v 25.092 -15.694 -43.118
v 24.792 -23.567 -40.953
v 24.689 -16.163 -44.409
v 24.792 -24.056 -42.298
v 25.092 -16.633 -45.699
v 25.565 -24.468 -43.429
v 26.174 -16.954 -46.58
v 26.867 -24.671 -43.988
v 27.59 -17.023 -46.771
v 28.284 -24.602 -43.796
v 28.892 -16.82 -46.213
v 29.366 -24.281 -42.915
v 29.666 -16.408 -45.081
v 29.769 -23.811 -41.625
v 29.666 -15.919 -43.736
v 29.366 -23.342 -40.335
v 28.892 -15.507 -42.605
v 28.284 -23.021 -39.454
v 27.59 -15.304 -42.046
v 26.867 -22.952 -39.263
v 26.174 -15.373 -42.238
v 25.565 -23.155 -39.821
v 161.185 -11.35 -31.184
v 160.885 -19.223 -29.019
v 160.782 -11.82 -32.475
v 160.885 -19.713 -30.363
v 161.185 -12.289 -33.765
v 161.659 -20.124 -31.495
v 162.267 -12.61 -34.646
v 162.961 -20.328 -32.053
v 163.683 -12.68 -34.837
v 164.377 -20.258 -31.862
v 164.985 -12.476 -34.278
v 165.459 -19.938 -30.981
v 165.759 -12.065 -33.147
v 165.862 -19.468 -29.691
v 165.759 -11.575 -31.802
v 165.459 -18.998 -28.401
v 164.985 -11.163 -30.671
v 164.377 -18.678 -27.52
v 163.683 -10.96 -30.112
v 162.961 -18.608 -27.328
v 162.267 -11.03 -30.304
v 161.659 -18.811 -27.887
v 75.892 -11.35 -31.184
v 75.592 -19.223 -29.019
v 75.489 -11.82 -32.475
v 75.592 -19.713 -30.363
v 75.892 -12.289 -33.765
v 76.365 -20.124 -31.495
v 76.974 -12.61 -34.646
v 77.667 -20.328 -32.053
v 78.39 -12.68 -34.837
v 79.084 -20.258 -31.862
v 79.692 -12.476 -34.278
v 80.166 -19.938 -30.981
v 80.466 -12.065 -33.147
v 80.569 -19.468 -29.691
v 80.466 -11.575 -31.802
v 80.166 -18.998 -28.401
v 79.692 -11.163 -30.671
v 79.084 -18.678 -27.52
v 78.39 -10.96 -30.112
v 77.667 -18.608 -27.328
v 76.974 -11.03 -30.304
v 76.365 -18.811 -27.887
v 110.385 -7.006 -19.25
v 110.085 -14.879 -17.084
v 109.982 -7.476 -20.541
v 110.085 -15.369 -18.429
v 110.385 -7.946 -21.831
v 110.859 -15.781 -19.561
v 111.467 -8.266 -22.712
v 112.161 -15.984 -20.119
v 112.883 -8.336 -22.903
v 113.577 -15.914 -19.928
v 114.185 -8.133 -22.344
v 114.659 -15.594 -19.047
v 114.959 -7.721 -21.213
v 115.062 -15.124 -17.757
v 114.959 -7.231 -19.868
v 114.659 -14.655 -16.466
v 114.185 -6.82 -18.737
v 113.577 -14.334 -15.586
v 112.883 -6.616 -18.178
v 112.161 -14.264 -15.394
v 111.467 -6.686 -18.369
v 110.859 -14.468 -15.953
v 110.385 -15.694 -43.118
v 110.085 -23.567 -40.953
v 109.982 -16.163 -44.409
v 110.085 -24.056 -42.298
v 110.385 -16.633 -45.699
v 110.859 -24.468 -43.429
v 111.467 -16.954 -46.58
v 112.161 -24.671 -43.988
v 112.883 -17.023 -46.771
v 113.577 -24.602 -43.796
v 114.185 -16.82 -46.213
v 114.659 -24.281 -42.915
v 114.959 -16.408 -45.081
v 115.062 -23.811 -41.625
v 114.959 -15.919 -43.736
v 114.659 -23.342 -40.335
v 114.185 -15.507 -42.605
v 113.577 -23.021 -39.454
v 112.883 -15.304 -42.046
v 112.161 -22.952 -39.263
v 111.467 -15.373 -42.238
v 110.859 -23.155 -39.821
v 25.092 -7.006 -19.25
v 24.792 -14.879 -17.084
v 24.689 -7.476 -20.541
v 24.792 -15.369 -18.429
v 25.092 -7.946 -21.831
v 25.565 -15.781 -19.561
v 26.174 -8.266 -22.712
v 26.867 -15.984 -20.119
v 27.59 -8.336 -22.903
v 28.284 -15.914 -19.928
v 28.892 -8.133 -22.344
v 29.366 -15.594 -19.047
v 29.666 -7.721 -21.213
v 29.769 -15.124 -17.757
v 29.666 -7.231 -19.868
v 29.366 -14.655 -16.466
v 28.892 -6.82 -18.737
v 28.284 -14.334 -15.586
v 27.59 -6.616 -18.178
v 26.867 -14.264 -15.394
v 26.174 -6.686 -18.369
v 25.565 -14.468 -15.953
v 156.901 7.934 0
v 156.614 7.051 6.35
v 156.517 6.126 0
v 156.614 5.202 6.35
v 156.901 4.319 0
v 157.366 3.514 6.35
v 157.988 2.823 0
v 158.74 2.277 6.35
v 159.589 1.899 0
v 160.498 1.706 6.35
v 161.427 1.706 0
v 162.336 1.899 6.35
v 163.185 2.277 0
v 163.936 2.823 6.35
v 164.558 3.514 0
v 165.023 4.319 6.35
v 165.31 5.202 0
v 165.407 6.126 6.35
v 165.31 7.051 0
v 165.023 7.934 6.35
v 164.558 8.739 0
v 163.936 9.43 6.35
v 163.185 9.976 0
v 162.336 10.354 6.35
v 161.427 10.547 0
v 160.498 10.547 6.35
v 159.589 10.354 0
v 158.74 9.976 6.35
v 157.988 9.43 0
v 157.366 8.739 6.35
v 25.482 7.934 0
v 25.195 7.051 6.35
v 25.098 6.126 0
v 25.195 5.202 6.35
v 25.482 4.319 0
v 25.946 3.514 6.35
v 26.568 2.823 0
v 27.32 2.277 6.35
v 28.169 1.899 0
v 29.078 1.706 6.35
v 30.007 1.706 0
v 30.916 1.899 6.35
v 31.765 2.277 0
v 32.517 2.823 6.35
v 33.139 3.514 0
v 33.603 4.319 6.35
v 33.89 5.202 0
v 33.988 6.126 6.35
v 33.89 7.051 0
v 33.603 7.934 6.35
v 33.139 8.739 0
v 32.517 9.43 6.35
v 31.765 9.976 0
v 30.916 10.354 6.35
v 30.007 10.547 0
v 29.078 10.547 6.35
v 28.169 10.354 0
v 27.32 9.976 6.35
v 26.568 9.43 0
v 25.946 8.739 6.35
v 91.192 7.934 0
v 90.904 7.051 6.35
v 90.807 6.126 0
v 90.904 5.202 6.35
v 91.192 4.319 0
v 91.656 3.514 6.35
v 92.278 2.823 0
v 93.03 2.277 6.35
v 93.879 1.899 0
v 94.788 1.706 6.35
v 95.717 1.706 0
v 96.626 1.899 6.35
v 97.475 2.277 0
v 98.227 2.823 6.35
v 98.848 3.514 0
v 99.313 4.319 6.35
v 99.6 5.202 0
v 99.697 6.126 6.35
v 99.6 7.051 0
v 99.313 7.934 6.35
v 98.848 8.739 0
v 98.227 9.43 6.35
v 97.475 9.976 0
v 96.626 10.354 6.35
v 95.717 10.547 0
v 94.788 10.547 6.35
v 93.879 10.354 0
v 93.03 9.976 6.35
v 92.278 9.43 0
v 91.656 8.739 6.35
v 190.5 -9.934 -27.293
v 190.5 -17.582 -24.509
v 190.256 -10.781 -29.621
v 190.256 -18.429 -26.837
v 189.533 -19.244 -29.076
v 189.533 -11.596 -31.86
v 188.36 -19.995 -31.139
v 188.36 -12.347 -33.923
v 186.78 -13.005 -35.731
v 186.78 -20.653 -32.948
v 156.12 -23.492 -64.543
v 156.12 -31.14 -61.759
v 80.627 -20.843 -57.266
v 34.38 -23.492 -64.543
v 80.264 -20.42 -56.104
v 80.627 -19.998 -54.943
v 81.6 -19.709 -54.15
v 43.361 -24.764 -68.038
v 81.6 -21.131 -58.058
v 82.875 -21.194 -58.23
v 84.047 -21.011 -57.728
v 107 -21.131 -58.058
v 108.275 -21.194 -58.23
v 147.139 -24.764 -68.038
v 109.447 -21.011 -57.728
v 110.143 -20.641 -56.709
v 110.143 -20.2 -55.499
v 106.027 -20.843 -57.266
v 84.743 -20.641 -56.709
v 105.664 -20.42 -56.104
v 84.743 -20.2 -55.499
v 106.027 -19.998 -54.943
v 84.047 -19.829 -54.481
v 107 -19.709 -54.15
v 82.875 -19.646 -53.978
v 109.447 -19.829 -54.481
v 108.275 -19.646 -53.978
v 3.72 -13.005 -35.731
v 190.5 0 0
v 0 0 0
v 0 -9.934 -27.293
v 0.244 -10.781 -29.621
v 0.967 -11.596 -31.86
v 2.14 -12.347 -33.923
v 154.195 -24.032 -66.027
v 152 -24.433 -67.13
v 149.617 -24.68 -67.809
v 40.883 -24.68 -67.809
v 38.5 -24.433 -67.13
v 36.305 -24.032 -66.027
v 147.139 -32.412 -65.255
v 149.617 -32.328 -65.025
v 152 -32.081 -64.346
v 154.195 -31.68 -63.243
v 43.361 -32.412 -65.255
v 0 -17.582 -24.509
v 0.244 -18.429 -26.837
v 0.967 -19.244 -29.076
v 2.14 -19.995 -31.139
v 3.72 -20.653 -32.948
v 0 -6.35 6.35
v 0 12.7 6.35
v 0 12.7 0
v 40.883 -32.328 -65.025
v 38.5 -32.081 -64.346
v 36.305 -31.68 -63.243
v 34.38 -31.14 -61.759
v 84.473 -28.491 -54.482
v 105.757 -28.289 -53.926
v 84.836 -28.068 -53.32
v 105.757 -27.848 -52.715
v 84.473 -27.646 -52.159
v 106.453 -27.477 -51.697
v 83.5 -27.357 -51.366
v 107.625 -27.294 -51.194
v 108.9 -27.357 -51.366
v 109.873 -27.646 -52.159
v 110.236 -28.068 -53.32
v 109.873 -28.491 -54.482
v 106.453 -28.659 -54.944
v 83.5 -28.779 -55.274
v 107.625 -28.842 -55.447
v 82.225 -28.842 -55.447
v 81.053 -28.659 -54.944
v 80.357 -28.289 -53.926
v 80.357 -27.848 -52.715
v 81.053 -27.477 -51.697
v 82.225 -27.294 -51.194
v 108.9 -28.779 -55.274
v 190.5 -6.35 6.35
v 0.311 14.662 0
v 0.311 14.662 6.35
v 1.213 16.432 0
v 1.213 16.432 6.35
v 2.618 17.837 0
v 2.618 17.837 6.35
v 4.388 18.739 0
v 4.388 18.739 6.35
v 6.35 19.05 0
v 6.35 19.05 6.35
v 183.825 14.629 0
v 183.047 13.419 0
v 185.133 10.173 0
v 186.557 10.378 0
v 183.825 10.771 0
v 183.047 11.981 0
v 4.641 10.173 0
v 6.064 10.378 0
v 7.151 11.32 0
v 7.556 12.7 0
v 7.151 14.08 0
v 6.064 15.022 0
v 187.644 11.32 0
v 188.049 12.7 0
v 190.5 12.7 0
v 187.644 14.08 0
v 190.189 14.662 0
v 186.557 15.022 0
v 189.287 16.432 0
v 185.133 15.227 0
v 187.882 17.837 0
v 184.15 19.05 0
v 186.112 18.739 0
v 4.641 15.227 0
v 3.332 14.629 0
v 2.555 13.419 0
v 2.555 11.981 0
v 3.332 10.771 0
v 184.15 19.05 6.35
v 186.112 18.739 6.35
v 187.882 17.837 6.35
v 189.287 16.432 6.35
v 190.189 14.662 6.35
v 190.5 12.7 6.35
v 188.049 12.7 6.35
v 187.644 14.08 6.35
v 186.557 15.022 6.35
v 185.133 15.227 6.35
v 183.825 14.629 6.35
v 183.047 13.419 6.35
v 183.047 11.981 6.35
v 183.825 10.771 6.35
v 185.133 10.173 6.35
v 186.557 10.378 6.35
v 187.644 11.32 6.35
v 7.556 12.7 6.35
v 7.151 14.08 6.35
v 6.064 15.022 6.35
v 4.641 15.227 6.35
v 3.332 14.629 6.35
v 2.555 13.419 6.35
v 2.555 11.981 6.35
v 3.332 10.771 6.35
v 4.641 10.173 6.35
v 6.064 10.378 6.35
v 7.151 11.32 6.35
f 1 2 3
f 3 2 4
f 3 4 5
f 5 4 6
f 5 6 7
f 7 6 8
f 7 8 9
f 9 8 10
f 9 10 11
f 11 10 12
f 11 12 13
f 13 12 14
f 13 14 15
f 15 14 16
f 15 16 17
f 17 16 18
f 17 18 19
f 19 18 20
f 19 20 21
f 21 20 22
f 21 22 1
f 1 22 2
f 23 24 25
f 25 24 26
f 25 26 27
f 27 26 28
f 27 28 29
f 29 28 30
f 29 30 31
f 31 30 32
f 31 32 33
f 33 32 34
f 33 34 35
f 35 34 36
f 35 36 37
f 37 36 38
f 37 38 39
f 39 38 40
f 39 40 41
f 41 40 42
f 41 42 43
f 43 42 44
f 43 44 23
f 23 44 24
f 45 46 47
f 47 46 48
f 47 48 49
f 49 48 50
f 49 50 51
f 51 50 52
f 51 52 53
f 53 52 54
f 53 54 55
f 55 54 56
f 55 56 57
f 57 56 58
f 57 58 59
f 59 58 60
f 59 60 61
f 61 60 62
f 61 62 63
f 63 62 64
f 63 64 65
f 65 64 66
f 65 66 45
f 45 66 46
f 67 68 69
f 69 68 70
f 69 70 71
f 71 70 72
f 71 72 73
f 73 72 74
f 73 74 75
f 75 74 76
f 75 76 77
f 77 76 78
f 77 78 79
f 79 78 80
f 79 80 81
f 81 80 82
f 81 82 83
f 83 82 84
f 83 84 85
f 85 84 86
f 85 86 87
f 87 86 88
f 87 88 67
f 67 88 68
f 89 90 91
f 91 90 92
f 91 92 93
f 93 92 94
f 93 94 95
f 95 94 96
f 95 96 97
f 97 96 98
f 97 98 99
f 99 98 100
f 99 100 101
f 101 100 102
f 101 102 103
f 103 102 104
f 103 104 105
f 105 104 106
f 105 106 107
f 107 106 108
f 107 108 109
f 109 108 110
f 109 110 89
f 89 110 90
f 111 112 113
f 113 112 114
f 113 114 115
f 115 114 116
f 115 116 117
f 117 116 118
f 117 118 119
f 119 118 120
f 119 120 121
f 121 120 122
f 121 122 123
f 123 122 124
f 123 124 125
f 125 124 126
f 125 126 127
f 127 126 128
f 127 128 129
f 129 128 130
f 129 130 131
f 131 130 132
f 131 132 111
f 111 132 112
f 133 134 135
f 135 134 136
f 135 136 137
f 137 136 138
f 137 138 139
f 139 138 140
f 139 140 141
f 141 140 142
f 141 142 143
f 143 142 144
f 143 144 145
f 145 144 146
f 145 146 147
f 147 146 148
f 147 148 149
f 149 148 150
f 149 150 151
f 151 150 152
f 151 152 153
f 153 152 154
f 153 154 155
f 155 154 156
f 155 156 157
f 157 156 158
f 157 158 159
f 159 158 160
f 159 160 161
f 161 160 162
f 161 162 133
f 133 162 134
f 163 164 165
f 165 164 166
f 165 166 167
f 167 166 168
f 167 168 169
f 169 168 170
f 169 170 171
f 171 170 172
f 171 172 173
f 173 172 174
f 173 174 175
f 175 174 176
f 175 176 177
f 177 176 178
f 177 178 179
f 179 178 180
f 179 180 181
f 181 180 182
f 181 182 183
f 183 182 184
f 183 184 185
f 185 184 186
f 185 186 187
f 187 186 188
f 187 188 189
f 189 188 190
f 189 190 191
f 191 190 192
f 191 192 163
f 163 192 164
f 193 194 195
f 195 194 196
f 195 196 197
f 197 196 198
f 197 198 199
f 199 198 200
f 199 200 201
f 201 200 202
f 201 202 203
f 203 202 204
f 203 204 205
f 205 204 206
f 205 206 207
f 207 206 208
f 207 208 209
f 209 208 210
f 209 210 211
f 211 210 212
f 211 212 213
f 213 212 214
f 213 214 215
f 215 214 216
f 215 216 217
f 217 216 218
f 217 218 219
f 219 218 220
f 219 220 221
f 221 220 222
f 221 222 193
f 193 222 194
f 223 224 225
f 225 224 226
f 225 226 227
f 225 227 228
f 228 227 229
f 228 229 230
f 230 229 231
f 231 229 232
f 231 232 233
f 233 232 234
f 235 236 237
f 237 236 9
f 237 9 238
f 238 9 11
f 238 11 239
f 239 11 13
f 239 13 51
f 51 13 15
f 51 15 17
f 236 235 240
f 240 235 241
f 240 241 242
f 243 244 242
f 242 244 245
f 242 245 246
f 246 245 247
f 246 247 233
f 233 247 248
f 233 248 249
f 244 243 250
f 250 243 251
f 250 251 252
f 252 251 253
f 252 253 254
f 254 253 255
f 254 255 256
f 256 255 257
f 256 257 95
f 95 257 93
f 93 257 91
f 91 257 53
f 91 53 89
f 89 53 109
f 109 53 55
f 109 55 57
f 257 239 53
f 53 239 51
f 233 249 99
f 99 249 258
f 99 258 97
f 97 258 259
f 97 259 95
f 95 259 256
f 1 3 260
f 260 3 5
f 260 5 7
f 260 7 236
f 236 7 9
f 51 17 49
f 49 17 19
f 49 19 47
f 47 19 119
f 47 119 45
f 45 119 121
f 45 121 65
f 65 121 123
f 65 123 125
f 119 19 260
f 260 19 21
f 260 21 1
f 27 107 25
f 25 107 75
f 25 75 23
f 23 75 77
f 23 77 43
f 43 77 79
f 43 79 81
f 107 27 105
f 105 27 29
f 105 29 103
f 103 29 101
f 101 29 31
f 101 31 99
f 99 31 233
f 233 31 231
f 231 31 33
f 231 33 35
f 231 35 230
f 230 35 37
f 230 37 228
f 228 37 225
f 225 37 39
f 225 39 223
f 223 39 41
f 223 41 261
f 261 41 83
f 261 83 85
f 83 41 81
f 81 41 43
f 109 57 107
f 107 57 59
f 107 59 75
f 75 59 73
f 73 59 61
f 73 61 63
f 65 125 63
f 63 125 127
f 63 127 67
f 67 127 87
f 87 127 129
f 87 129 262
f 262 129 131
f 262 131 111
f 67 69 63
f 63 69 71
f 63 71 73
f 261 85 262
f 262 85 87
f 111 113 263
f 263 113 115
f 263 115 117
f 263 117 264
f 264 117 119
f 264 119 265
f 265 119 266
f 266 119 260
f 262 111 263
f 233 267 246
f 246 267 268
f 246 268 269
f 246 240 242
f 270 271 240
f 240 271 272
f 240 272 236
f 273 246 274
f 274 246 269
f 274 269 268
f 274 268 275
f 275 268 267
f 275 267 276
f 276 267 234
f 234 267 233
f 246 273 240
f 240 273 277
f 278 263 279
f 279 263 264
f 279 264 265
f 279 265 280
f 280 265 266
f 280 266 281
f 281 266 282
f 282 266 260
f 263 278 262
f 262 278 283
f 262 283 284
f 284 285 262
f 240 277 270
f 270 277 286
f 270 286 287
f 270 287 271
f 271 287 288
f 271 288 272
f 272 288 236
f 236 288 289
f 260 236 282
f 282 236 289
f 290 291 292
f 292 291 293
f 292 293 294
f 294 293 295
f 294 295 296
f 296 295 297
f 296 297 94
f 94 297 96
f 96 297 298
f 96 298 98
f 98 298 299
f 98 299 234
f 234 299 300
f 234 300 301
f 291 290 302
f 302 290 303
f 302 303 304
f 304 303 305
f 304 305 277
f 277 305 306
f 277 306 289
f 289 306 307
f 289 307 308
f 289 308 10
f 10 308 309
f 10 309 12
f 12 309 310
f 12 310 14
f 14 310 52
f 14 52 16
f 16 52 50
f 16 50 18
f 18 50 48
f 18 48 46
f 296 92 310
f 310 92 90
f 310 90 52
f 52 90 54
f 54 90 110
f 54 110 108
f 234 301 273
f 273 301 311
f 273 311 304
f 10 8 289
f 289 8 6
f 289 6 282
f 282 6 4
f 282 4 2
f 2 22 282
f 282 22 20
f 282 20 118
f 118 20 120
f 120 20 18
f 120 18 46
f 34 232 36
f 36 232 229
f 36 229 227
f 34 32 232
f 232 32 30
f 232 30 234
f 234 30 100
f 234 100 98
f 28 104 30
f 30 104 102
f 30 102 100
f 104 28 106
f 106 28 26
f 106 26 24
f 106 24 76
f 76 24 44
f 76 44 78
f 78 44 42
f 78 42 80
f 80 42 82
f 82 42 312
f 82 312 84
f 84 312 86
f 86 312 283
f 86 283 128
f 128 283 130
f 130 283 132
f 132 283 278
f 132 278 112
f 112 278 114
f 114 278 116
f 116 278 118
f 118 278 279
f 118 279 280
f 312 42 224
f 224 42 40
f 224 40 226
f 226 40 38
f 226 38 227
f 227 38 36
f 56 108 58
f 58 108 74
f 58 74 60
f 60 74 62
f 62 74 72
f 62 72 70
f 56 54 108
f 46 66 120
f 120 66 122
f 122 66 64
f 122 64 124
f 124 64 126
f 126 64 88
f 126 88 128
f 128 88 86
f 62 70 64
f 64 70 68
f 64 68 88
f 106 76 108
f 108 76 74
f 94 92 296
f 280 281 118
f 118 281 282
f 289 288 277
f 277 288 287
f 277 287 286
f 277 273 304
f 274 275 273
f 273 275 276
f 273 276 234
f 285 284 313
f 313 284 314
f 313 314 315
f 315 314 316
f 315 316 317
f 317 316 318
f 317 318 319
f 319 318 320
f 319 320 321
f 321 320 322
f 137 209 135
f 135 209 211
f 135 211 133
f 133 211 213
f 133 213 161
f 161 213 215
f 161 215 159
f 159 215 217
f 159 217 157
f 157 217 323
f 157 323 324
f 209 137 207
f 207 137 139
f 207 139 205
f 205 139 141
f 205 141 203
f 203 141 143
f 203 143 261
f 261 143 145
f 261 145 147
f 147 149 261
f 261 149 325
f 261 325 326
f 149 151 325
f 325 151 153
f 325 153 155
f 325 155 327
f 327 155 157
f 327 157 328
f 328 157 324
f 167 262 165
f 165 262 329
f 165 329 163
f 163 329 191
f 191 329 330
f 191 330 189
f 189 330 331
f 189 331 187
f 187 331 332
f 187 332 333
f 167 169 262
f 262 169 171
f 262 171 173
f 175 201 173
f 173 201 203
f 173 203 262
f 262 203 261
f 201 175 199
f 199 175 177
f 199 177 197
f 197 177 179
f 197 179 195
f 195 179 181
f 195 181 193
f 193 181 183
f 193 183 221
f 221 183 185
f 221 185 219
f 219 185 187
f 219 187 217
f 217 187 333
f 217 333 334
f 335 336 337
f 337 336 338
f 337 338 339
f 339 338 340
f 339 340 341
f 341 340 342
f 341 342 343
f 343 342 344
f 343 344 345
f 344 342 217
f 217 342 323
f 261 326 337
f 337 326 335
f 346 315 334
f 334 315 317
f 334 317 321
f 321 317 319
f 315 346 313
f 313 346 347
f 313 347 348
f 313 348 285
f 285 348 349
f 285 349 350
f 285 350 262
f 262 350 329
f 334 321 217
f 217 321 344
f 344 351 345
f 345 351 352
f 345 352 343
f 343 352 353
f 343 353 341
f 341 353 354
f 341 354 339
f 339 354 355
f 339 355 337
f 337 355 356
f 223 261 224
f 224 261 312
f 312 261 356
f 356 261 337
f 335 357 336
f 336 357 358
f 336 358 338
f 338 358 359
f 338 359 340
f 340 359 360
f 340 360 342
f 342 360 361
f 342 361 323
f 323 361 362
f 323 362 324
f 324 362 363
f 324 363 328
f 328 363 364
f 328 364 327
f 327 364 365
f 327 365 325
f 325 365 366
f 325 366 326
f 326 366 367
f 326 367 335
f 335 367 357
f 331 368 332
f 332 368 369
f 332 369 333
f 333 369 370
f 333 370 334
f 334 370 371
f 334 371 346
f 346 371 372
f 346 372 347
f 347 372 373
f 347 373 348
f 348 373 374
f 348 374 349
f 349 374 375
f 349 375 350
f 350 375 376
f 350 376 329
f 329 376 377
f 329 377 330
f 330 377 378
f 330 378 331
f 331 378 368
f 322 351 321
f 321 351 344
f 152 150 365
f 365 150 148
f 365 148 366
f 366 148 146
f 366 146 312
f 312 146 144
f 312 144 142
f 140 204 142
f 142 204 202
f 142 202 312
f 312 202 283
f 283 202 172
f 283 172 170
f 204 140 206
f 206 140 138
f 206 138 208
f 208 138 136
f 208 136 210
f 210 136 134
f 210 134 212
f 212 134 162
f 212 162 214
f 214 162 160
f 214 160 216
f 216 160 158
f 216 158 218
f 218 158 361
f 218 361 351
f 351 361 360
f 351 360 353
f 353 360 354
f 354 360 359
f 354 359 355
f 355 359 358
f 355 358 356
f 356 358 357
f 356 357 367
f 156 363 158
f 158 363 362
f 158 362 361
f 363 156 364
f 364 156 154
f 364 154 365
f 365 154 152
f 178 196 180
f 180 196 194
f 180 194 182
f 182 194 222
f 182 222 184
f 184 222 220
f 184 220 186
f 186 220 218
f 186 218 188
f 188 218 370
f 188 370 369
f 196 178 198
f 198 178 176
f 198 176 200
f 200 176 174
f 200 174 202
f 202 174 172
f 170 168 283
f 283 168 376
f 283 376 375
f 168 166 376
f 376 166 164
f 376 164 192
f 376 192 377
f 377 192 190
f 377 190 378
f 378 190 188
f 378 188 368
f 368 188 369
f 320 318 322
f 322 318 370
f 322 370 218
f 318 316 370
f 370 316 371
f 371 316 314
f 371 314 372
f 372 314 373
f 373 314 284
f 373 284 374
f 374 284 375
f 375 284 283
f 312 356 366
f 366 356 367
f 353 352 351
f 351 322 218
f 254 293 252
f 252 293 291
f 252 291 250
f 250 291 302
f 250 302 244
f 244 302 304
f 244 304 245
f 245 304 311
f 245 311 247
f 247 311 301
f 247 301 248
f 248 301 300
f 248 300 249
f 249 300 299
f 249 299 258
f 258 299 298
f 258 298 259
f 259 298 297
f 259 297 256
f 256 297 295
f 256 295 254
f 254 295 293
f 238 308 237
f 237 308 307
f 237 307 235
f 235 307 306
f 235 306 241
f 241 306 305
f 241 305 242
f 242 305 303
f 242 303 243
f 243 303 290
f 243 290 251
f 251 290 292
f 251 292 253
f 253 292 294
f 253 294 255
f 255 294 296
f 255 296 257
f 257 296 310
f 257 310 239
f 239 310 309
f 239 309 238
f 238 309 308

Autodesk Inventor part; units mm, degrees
ref_plane "YZ Plane" through (0, 0, 0) normal (1, 0, 0) x (0, 1, 0)
ref_plane "XZ Plane" through (0, 0, 0) normal (0, 1, 0) x (-1, 0, 0)
ref_plane "XY Plane" through (0, 0, 0) normal (0, 0, 1) x (1, 0, 0)
sketch "Sketch1" plane through (0, 0, 0) normal (0, 0, 1) x (1, 0, 0)
  line L0 (0, 0) -> (190.5, 0)
  line L1 (190.5, 0) -> (190.5, 19.05)
  line L2 (190.5, 19.05) -> (0, 19.05)
  line L3 (0, 19.05) -> (0, 0)
  dimension "d0" = 190.5
  dimension "d1" = 19.05
extrude "Extrusion1" add sketch "Sketch1" along normal blind 6.35
sketch "Sketch2" plane through (0, 0, 6.35) normal (0, 0, 1) x (1, 0, 0)
  circle A0 centre (5.0038, 12.7) radius 2.5527
  circle A1 centre (185.4962, 12.7) radius 2.5527
  line L0 (0, 19.05) -> (0, 0) projected
  line L1 (0, 0) -> (190.5, 0) projected
  point P0 (0, 9.525)
  point P1 (0, 9.525)
  dimension "d4" = 5.1054
  dimension "d5" = 5.1054
  dimension "d6" = 180.4924
  dimension "d10" = 5.0038
  dimension "d11" = 12.7
extrude "Extrusion2" cut sketch "Sketch2" against normal blind 6.35
fillet "Fillet1" radius 6.35 2 edges at (190.5, 19.05, 3.175) (0, 19.05, 3.175)
sketch "Sketch3" plane through (190.5, 0, 6.35) normal (1, 0, 0) x (0, 0, -1)
  line L0 (0, -6.35) -> (71.6046, -32.4119)
  line L1 (0, 0) -> (76.2, 0) construction
  line L2 (6.35, 12.7) -> (6.35, 0) projected
  line L3 (6.35, 0) -> (0, 0) projected
  line L4 (6.35, 0) -> (74.3882, -24.7639)
  line L5 (6.35, 0) -> (78.7548, 0) construction
  line L6 (74.3882, -24.7639) -> (71.6046, -32.4119)
  line L7 (0, 0) -> (0, 12.7) projected
  line L8 (0, 0) -> (0, -6.35)
  dimension "d13" = 76.2
  dimension "d14" = 20
  dimension "d17" = 20
  dimension "d18" = 6.35
extrude "Extrusion3" add sketch "Sketch3" against normal up to surface (190.5 mm away)
chamfer "Chamfer1" distance 38.1 angle 45 2 edges at (0, -28.5879, -66.6464) (190.5, -28.5879, -66.6464)
fillet "Fillet2" radius 12.7 4 edges at (38.1, -28.5879, -66.6464) (0, -15.5569, -30.8441) (152.4, -28.5879, -66.6464) (190.5, -15.5569, -30.8441)
sketch "Sketch5" plane through (0, 0, 6.35) normal (0, 0, 1) x (1, 0, 0)
  circle A0 centre (160.9621, 6.1265) radius 4.445
  circle A1 centre (185.4962, 12.7) radius 2.5527 projected
  line L0 (185.4962, 12.7) -> (176.5159, 21.6803)
  line L1 (185.4962, 12.7) -> (198.1962, 12.7) construction
  line L2 (176.5159, 21.6803) -> (160.9621, 6.1265)
  line L3 (160.9621, 6.1265) -> (95.2523, 6.1265)
  line L4 (95.2523, 6.1265) -> (29.5425, 6.1265)
  circle A2 centre (29.5425, 6.1265) radius 4.445
  circle A3 centre (95.2523, 6.1265) radius 4.445
  point P0 (0, 0)
  dimension "d24" = 8.89
  dimension "d25" = 12.7
  dimension "d26" = 135
  dimension "d27" = 21.9964
  dimension "d30" = 65.7098
  dimension "d31" = 65.7098
  dimension "d32" = 8.89
  dimension "d33" = 8.89
extrude "Extrusion4" cut sketch "Sketch5" against normal blind 25.4 contours A0 L3 L2 | L2 L3 A0 | A3 L4 L3 | L3 L4 A3 | A2
sketch "Sketch6" plane through (0, -6.35, 6.35) normal (0, -0.9396926, 0.3420201) x (1, 0, 0)
  circle A0 centre (163.322, -38.354) radius 2.54
  line L0 (190.5, 0) -> (190.5, -32.8395) projected
  line L1 (147.1395, -76.2) -> (43.3605, -76.2) projected
  circle A1 centre (112.522, -51.054) radius 2.54
  circle A2 centre (112.522, -25.654) radius 2.54
  circle A3 centre (78.0288, -38.354) radius 2.54
  circle A4 centre (27.2288, -25.654) radius 2.54
  circle A5 centre (27.2288, -51.054) radius 2.54
  point P0 (0, -3.7952)
  dimension "d34" = 27.178
  dimension "d35" = 37.846
  dimension "d36" = 5.08
  dimension "d39" = 5.08
  dimension "d40" = 12.7
  dimension "d41" = 50.8
  dimension "d42" = 5.08
  dimension "d43" = 50.8
  dimension "d44" = 12.7
  dimension "d45" = 85.2932
  dimension "d46" = 5.08
  dimension "d47" = 5.08
  dimension "d48" = 5.08
  dimension "d51" = 50.8
  dimension "d52" = 50.8
extrude "Extrusion5" cut sketch "Sketch6" against normal blind 25.4
sketch "Sketch8" plane through (0, -6.35, 6.35) normal (0, -0.9396926, 0.3420201) x (1, 0, 0)
  line L0 (147.1395, -76.2) -> (43.3605, -76.2) projected
  line L1 (95.25, -76.2) -> (95.25, -63.5)
  line L2 (95.25, -63.5) -> (82.55, -63.5)
  line L3 (95.25, -63.5) -> (107.95, -63.5)
  point P0 (0, -3.7952)
  dimension "d58" = 12.7
  dimension "d59" = 12.7
  dimension "d60" = 12.7
hole "Hole1" at (82.55, -28.0683, -53.3205) at (107.95, -28.0683, -53.3205) direction (0, 0.9396926, -0.3420201) diameter 4.572 end through all
equation "\"d5\" = d4"
properties part number "Module_SPM_Mount_2.0_SMM"
